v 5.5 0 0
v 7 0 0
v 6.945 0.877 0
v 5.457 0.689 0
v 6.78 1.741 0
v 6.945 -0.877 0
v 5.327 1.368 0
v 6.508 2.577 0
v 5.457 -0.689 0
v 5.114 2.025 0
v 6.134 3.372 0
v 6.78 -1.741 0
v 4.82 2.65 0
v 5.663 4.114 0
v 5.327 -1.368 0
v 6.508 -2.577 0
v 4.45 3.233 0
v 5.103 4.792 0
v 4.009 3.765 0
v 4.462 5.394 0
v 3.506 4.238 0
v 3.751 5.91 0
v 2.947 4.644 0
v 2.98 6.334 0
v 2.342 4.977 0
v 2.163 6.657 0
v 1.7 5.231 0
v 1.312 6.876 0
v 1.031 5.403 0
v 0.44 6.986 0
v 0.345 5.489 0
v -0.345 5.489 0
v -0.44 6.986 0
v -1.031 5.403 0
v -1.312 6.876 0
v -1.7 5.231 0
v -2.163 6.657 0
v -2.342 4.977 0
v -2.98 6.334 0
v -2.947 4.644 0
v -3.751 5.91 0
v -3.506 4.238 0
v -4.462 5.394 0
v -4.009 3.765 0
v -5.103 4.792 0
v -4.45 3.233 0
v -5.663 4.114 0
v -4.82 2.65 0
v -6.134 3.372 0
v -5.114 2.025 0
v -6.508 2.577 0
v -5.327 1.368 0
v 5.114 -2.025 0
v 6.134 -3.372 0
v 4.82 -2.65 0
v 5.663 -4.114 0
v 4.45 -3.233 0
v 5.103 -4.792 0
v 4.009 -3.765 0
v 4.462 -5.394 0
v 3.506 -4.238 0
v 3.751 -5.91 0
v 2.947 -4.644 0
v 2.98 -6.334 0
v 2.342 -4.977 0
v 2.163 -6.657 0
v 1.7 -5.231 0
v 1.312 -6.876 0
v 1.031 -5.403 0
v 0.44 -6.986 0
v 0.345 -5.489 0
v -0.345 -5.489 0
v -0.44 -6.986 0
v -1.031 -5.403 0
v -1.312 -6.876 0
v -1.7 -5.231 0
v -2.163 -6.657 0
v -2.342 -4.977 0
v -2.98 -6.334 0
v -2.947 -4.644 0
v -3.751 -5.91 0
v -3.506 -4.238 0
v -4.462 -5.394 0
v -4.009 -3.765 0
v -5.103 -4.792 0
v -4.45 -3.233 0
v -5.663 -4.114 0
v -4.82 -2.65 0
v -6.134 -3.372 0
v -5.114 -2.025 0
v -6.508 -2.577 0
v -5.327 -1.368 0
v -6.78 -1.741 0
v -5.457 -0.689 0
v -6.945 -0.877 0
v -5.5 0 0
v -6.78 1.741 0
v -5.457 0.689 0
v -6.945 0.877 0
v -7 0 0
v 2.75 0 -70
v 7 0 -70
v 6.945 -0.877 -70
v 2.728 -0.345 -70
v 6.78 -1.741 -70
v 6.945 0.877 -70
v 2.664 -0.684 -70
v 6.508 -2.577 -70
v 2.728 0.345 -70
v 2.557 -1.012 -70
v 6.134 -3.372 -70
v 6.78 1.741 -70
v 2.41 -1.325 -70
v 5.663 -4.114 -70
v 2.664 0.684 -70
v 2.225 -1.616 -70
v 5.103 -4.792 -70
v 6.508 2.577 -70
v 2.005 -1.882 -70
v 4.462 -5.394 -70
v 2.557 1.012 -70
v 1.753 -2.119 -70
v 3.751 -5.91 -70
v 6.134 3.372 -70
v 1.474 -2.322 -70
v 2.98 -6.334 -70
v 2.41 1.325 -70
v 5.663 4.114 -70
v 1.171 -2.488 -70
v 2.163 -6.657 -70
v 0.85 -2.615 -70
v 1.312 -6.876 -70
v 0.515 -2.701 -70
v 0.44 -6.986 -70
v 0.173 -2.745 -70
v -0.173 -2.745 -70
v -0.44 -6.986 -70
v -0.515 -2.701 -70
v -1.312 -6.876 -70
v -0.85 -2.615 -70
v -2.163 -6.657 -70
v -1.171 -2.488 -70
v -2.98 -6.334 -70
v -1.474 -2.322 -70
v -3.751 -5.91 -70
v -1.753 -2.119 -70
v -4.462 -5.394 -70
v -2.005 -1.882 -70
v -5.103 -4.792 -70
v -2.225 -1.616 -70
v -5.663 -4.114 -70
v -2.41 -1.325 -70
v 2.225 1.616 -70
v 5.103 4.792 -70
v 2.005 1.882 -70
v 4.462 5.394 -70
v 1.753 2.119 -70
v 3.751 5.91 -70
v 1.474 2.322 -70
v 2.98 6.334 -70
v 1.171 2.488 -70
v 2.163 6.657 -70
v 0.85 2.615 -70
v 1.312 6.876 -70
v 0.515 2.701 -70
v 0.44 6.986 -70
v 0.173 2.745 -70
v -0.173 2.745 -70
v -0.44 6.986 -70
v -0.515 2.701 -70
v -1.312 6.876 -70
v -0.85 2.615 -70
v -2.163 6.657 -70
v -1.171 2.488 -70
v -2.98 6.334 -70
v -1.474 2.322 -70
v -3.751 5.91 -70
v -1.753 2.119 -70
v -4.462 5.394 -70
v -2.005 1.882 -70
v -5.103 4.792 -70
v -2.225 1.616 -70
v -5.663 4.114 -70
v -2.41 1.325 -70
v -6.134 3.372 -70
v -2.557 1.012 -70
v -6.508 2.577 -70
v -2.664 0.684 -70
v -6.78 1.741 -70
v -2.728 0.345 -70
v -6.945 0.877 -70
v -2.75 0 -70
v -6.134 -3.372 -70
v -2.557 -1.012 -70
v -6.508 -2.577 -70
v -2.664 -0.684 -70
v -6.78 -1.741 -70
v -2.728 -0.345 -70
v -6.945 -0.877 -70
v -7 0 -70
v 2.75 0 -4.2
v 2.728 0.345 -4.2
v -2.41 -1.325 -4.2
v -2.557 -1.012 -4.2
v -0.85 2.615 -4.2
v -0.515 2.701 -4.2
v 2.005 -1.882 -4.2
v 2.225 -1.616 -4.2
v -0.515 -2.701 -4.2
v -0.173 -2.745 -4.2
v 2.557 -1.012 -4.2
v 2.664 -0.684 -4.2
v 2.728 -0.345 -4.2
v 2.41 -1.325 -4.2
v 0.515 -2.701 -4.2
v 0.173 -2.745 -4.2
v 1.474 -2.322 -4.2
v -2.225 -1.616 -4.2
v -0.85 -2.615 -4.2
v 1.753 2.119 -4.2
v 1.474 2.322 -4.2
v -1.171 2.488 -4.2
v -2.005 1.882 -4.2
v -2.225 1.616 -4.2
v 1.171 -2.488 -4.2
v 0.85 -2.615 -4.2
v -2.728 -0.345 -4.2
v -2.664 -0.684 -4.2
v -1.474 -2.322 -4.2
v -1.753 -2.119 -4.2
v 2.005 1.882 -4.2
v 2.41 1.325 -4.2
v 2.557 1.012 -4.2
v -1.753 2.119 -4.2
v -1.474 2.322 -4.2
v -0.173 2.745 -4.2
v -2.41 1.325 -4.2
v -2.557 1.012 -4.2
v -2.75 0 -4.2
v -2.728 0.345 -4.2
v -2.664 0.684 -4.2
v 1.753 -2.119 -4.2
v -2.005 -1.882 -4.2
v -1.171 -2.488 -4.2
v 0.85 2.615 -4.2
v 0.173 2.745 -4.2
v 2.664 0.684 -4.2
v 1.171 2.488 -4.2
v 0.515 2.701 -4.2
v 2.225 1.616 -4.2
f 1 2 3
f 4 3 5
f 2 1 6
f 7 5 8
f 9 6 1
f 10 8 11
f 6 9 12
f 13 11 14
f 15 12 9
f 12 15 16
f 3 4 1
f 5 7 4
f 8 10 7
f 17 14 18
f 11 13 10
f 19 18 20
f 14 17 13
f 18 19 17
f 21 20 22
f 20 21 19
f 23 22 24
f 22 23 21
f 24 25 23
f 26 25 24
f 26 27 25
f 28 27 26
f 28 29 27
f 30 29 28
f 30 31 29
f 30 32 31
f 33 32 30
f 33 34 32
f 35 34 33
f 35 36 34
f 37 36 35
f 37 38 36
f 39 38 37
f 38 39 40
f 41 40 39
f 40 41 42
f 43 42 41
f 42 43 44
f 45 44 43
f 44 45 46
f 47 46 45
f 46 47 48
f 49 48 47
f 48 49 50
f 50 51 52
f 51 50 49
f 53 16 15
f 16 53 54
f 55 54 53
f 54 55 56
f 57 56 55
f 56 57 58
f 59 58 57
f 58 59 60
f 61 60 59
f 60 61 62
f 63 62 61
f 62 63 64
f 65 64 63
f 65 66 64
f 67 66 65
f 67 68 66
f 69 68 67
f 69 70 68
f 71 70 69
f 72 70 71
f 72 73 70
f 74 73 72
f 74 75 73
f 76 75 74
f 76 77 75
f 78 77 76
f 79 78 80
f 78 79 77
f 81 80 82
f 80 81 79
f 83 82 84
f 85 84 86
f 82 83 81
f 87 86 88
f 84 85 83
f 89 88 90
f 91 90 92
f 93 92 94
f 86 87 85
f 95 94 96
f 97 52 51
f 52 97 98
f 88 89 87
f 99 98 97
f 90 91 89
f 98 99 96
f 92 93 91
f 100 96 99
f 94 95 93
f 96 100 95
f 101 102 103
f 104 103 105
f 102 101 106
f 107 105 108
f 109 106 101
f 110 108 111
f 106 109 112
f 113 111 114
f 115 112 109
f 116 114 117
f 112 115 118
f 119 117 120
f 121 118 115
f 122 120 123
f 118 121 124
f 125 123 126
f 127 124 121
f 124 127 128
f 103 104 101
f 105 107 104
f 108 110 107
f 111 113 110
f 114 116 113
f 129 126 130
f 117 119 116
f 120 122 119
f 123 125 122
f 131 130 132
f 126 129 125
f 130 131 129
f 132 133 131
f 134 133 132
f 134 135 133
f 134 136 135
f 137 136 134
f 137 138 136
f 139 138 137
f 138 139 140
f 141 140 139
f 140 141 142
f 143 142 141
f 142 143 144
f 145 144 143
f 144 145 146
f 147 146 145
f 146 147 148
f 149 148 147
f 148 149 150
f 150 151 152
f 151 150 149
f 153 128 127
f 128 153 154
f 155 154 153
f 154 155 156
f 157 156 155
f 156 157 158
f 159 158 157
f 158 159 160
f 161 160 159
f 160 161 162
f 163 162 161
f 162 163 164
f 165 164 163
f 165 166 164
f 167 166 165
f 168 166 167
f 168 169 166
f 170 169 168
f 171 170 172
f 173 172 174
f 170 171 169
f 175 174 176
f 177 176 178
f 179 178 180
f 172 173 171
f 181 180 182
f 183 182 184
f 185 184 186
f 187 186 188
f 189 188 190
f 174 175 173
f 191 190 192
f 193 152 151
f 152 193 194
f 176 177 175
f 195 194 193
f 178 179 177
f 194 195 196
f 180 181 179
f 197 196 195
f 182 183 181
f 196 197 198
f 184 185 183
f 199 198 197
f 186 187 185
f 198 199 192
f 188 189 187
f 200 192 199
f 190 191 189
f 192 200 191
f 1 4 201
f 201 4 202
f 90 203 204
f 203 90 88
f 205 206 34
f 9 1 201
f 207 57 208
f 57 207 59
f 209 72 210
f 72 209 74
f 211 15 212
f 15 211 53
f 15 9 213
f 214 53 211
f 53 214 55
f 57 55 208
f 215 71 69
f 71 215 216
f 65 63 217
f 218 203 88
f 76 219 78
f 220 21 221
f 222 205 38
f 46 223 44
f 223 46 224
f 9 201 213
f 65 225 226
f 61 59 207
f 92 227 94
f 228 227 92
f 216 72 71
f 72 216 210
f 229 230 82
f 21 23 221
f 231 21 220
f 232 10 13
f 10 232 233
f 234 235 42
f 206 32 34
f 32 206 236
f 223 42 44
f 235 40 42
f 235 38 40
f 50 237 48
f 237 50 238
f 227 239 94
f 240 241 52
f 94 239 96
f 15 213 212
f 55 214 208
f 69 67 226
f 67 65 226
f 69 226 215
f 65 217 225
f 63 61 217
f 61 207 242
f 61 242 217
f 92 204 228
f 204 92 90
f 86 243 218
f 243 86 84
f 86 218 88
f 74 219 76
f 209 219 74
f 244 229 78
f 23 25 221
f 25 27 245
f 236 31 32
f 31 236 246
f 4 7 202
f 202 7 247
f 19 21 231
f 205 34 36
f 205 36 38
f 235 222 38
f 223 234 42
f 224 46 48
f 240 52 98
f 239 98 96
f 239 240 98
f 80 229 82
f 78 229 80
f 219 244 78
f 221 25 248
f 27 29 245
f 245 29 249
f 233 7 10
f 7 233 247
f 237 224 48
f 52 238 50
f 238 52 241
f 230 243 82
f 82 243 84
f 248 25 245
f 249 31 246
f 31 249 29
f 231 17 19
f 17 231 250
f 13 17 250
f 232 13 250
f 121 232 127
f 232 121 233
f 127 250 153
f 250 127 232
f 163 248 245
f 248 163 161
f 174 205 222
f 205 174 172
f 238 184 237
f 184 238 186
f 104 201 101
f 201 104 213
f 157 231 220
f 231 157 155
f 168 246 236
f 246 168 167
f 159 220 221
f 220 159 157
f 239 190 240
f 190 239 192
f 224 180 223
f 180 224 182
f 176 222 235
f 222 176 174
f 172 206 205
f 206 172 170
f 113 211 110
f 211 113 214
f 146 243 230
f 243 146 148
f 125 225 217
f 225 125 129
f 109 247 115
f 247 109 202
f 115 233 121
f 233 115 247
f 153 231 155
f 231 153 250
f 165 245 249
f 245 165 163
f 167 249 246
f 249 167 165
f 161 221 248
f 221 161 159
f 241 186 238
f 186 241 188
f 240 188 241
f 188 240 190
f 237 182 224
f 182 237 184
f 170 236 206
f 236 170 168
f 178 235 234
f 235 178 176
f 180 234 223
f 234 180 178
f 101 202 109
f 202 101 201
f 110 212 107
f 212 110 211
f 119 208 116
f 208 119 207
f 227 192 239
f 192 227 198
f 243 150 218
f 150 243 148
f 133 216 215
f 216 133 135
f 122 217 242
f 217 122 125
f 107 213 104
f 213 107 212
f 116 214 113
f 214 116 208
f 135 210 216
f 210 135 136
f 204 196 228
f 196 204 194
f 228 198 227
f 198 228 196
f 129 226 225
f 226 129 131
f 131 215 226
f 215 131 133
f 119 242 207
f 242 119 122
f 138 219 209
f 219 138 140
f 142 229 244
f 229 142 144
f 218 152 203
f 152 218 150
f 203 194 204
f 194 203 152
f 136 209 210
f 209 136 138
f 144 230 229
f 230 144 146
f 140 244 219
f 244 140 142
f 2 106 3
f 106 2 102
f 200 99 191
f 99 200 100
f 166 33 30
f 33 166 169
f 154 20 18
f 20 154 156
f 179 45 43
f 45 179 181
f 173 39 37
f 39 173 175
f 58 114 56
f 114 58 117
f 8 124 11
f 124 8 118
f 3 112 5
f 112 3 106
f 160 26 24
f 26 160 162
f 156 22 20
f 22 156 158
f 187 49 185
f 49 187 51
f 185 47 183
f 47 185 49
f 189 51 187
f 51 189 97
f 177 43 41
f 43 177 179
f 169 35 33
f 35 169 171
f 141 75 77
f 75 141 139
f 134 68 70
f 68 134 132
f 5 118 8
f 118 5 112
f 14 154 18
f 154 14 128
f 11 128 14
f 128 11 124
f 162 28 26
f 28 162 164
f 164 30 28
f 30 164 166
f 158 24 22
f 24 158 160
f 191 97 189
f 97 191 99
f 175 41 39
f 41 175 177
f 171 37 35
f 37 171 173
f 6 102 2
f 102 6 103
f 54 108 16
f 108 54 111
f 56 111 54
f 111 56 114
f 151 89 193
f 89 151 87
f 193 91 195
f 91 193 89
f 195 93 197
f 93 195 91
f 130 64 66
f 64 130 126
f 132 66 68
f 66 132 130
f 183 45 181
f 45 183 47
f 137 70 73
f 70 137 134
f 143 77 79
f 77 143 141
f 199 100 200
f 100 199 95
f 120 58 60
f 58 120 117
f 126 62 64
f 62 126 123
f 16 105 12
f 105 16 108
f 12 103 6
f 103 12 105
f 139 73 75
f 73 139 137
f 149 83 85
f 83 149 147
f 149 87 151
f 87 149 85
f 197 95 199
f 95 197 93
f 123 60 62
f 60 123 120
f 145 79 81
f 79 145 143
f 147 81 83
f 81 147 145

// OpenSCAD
$fn = 50;


difference() {
	union() {
		translate(v = [0, 0, -70.0000000000]) {
			cylinder(h = 70, r = 7.0000000000);
		}
	}
	union() {
		translate(v = [0, 0, 0]) {
			rotate(a = [0, 0, 0]) {
				difference() {
					union() {
						#translate(v = [0, 0, -70.0000000000]) {
							cylinder(h = 70, r = 2.2500000000);
						}
						#translate(v = [0, 0, -4.2000000000]) {
							cylinder(h = 4.2000000000, r1 = 2.7500000000, r2 = 5.5000000000);
						}
						#translate(v = [0, 0, -70.0000000000]) {
							cylinder(h = 70, r = 2.7500000000);
						}
						#translate(v = [0, 0, -70.0000000000]) {
							cylinder(h = 70, r = 2.2500000000);
						}
					}
					union();
				}
			}
		}
	}
}
